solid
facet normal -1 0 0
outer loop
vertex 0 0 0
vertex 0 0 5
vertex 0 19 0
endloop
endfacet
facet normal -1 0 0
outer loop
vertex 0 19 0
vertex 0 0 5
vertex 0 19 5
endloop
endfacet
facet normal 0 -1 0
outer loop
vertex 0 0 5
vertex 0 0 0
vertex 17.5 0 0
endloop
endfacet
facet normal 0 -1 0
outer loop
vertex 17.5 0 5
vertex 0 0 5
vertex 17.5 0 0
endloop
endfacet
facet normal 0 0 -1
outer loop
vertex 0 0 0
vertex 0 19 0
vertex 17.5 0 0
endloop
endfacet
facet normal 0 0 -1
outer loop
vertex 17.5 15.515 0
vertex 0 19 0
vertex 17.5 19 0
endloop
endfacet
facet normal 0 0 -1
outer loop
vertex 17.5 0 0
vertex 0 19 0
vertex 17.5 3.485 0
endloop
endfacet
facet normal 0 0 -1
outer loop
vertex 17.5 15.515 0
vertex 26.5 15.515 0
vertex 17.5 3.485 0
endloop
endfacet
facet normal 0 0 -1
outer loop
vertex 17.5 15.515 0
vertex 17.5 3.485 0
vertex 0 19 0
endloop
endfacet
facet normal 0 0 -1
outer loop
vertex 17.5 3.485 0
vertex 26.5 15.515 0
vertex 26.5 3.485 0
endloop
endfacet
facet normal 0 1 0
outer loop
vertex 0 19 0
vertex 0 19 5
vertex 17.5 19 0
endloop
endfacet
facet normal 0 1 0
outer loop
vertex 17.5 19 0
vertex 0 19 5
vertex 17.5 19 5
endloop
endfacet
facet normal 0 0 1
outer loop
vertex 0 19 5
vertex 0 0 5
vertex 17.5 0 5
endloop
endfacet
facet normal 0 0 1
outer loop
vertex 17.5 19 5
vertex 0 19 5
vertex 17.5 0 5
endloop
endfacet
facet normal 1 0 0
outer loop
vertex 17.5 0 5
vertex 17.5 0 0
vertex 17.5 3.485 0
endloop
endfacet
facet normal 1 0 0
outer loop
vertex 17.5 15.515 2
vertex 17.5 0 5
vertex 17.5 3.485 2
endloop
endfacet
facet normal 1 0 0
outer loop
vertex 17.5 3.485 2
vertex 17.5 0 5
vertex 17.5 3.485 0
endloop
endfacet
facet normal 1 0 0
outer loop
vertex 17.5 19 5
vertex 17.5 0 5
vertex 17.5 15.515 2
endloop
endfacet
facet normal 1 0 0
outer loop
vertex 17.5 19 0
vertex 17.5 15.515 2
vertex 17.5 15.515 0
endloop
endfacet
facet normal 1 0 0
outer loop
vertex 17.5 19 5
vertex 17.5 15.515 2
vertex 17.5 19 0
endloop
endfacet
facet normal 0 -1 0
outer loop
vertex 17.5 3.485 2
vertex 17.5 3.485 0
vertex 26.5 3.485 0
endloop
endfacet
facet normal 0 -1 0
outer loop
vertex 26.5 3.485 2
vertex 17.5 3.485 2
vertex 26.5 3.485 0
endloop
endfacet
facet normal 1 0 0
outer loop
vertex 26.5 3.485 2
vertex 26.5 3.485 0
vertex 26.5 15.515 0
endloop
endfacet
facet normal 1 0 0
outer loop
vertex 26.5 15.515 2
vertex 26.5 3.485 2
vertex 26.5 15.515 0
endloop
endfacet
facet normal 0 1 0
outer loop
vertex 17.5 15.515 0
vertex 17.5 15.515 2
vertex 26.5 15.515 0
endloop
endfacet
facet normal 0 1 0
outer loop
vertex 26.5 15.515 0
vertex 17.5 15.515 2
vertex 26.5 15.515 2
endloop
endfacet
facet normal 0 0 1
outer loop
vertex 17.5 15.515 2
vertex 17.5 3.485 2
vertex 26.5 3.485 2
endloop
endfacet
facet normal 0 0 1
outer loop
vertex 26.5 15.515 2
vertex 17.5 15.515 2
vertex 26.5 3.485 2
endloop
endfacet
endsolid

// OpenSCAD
union(){
	cube([17.5,19,5]);
	translate([17.5,3.485,0]){
		cube([9,12.03,2]);
	}
}
